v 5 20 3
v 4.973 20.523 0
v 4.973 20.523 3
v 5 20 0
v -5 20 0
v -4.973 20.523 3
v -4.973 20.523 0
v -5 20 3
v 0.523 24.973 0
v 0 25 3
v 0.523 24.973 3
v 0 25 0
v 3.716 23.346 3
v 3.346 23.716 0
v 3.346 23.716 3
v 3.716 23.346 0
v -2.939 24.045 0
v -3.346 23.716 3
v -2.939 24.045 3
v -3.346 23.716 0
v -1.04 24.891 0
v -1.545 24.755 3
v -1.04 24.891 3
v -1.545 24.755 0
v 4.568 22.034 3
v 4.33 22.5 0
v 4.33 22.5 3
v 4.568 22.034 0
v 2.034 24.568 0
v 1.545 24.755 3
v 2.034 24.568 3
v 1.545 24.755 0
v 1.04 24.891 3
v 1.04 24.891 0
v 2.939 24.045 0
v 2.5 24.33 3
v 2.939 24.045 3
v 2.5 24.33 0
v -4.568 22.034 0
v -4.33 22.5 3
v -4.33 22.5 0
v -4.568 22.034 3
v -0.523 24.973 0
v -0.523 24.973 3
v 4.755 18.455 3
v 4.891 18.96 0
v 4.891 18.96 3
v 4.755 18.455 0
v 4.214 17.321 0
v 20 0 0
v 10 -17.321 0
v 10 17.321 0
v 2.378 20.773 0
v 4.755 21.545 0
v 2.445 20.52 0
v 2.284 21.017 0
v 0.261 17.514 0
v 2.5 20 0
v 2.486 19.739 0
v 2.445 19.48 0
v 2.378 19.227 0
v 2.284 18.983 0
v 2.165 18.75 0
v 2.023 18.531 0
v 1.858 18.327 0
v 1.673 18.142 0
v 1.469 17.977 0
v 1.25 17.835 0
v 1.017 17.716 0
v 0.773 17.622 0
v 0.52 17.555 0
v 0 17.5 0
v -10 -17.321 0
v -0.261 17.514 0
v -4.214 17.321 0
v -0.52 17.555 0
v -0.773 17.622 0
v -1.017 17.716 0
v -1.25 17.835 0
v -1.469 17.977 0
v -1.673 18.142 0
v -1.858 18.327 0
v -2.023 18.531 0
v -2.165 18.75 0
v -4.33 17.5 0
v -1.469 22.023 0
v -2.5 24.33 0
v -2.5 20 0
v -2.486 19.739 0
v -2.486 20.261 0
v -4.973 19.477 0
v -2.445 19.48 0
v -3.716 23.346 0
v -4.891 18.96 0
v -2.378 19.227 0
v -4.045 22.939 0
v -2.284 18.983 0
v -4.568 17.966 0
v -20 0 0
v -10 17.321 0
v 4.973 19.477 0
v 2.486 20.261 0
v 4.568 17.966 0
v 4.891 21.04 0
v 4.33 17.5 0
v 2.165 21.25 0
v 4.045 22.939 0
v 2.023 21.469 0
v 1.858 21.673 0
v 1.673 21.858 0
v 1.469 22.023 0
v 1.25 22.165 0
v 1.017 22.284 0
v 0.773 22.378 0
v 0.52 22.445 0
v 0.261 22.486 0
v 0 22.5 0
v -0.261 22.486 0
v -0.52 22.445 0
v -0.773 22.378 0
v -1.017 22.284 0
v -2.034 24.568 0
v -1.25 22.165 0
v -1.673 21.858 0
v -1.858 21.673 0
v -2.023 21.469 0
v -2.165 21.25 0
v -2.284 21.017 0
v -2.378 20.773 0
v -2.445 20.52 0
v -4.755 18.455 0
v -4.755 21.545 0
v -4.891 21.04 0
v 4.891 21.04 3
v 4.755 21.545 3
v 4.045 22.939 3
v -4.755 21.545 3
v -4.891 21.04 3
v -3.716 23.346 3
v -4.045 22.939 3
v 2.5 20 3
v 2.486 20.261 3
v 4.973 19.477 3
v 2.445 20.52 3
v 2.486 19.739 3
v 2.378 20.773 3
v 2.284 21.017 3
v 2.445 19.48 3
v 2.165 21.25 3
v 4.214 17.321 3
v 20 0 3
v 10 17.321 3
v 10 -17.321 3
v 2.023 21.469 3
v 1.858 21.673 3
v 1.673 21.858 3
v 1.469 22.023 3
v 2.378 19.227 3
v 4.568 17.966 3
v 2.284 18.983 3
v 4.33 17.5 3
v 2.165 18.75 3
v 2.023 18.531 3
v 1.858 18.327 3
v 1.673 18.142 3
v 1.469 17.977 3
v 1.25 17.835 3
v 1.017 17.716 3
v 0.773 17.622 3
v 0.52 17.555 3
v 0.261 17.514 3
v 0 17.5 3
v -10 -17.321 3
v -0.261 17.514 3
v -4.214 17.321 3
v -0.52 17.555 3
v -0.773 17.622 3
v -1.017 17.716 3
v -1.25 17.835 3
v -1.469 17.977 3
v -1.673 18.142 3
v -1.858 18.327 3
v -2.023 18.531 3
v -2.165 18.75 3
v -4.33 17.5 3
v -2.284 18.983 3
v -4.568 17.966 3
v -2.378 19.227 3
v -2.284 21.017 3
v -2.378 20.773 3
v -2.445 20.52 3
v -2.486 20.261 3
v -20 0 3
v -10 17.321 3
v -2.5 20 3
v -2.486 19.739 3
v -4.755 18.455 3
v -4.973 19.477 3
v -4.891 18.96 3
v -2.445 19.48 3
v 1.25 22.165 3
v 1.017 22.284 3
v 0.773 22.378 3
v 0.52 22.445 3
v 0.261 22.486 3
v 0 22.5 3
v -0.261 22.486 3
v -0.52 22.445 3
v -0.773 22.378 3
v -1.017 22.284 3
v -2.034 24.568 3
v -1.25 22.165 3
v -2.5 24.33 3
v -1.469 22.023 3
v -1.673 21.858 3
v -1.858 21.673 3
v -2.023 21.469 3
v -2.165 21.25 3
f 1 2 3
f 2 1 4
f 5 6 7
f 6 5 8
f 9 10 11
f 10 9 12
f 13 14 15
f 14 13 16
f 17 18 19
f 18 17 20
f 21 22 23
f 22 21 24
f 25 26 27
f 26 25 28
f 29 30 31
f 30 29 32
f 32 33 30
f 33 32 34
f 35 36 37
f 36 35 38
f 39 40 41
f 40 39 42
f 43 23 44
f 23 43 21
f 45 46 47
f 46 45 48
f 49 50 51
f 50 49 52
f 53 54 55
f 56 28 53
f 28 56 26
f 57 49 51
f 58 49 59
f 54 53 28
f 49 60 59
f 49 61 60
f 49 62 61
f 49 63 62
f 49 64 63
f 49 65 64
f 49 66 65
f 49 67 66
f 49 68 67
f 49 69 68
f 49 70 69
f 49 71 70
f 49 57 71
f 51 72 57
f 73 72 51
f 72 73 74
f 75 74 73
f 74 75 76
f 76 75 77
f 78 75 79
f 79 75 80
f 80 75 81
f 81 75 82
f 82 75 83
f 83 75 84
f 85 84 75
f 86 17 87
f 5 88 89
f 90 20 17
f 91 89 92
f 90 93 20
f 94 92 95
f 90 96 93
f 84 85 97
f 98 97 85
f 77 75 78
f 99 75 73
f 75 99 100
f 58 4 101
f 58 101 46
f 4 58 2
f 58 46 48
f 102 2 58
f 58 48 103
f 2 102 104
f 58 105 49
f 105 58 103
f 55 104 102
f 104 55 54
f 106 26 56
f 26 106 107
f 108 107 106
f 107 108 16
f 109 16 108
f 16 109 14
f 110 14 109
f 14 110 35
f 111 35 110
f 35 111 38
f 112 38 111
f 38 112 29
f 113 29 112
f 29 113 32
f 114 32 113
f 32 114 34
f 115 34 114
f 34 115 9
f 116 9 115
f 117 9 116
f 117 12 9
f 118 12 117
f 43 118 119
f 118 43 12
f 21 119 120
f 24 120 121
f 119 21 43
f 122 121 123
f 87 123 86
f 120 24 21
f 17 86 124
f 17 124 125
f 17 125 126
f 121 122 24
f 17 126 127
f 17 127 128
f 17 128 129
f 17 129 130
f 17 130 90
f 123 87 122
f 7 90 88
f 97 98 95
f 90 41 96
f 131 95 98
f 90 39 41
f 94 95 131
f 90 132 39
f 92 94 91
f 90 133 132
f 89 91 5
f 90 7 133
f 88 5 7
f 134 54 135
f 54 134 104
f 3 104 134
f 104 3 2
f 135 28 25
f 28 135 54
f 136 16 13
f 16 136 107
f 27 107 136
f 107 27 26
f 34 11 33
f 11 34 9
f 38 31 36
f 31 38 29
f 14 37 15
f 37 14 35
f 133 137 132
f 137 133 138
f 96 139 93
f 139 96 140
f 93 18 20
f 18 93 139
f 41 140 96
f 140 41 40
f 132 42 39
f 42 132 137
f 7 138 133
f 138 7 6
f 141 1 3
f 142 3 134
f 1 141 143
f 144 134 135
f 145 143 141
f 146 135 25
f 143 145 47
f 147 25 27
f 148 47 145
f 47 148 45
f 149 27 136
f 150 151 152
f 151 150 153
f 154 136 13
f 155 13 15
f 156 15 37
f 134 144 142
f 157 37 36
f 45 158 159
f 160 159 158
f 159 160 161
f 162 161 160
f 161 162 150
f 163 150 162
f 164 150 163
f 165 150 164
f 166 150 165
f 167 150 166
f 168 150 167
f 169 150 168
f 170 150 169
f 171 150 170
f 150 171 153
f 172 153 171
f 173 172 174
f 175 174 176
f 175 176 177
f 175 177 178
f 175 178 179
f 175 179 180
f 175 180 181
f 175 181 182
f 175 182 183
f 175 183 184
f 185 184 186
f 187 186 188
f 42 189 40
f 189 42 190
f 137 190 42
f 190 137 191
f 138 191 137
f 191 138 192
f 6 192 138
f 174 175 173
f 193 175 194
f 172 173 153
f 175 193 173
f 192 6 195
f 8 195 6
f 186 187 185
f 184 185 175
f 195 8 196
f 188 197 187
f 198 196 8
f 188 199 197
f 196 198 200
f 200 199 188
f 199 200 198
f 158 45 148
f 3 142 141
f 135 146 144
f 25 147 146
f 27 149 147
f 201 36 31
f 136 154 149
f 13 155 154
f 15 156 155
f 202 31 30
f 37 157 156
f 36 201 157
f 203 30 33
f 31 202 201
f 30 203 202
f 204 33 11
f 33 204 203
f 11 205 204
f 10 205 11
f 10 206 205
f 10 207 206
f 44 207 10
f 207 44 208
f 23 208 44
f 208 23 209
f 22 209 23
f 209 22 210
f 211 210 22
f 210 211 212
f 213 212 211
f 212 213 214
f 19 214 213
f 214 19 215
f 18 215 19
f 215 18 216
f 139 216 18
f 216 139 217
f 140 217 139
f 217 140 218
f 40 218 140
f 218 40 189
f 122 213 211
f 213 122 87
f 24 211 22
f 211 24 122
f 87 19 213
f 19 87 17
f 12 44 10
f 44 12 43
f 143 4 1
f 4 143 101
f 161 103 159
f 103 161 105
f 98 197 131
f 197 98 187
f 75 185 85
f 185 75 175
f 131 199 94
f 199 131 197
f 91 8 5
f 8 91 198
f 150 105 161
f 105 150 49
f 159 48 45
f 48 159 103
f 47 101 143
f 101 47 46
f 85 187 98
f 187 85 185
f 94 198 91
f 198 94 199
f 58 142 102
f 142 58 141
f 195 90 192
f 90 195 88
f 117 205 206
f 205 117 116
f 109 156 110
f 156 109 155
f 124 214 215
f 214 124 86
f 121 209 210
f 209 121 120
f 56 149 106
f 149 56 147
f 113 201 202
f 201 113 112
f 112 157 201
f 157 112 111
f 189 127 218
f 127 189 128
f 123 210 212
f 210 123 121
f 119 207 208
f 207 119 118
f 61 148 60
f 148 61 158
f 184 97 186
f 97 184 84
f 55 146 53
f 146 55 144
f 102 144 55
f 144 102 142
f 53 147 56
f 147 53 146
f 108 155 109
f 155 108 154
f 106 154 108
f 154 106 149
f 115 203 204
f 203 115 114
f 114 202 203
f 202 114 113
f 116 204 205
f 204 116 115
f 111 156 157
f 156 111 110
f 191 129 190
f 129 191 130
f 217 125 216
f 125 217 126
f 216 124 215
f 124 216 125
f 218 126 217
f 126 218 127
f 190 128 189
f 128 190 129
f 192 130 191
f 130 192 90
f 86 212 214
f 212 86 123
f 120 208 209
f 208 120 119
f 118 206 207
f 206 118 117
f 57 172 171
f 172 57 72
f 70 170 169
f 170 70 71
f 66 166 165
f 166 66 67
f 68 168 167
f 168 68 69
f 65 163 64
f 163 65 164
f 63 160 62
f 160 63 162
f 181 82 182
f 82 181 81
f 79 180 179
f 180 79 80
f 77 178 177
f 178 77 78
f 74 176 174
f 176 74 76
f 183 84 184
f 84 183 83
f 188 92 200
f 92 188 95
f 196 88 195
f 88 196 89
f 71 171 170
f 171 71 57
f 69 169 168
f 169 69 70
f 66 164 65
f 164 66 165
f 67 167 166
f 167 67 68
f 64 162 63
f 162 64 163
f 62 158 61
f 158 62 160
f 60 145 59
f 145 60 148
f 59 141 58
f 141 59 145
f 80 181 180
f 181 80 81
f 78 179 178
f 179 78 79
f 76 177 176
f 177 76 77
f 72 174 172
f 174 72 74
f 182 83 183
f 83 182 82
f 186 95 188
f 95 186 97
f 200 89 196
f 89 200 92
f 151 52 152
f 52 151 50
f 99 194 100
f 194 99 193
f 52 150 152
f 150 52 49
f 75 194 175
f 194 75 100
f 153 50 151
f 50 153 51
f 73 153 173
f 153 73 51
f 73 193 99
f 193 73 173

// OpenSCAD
$fn = 60;
altura = 3;

union() {
    cylinder(h=altura, r=20, $fn=6); // Hexágono
    
    // Argola saliente
    translate([0, 20, 0]) 
    difference() {
        cylinder(h=altura, r=5);
        translate([0, 0, -1]) cylinder(h=altura+2, r=2.5);
    }
}
